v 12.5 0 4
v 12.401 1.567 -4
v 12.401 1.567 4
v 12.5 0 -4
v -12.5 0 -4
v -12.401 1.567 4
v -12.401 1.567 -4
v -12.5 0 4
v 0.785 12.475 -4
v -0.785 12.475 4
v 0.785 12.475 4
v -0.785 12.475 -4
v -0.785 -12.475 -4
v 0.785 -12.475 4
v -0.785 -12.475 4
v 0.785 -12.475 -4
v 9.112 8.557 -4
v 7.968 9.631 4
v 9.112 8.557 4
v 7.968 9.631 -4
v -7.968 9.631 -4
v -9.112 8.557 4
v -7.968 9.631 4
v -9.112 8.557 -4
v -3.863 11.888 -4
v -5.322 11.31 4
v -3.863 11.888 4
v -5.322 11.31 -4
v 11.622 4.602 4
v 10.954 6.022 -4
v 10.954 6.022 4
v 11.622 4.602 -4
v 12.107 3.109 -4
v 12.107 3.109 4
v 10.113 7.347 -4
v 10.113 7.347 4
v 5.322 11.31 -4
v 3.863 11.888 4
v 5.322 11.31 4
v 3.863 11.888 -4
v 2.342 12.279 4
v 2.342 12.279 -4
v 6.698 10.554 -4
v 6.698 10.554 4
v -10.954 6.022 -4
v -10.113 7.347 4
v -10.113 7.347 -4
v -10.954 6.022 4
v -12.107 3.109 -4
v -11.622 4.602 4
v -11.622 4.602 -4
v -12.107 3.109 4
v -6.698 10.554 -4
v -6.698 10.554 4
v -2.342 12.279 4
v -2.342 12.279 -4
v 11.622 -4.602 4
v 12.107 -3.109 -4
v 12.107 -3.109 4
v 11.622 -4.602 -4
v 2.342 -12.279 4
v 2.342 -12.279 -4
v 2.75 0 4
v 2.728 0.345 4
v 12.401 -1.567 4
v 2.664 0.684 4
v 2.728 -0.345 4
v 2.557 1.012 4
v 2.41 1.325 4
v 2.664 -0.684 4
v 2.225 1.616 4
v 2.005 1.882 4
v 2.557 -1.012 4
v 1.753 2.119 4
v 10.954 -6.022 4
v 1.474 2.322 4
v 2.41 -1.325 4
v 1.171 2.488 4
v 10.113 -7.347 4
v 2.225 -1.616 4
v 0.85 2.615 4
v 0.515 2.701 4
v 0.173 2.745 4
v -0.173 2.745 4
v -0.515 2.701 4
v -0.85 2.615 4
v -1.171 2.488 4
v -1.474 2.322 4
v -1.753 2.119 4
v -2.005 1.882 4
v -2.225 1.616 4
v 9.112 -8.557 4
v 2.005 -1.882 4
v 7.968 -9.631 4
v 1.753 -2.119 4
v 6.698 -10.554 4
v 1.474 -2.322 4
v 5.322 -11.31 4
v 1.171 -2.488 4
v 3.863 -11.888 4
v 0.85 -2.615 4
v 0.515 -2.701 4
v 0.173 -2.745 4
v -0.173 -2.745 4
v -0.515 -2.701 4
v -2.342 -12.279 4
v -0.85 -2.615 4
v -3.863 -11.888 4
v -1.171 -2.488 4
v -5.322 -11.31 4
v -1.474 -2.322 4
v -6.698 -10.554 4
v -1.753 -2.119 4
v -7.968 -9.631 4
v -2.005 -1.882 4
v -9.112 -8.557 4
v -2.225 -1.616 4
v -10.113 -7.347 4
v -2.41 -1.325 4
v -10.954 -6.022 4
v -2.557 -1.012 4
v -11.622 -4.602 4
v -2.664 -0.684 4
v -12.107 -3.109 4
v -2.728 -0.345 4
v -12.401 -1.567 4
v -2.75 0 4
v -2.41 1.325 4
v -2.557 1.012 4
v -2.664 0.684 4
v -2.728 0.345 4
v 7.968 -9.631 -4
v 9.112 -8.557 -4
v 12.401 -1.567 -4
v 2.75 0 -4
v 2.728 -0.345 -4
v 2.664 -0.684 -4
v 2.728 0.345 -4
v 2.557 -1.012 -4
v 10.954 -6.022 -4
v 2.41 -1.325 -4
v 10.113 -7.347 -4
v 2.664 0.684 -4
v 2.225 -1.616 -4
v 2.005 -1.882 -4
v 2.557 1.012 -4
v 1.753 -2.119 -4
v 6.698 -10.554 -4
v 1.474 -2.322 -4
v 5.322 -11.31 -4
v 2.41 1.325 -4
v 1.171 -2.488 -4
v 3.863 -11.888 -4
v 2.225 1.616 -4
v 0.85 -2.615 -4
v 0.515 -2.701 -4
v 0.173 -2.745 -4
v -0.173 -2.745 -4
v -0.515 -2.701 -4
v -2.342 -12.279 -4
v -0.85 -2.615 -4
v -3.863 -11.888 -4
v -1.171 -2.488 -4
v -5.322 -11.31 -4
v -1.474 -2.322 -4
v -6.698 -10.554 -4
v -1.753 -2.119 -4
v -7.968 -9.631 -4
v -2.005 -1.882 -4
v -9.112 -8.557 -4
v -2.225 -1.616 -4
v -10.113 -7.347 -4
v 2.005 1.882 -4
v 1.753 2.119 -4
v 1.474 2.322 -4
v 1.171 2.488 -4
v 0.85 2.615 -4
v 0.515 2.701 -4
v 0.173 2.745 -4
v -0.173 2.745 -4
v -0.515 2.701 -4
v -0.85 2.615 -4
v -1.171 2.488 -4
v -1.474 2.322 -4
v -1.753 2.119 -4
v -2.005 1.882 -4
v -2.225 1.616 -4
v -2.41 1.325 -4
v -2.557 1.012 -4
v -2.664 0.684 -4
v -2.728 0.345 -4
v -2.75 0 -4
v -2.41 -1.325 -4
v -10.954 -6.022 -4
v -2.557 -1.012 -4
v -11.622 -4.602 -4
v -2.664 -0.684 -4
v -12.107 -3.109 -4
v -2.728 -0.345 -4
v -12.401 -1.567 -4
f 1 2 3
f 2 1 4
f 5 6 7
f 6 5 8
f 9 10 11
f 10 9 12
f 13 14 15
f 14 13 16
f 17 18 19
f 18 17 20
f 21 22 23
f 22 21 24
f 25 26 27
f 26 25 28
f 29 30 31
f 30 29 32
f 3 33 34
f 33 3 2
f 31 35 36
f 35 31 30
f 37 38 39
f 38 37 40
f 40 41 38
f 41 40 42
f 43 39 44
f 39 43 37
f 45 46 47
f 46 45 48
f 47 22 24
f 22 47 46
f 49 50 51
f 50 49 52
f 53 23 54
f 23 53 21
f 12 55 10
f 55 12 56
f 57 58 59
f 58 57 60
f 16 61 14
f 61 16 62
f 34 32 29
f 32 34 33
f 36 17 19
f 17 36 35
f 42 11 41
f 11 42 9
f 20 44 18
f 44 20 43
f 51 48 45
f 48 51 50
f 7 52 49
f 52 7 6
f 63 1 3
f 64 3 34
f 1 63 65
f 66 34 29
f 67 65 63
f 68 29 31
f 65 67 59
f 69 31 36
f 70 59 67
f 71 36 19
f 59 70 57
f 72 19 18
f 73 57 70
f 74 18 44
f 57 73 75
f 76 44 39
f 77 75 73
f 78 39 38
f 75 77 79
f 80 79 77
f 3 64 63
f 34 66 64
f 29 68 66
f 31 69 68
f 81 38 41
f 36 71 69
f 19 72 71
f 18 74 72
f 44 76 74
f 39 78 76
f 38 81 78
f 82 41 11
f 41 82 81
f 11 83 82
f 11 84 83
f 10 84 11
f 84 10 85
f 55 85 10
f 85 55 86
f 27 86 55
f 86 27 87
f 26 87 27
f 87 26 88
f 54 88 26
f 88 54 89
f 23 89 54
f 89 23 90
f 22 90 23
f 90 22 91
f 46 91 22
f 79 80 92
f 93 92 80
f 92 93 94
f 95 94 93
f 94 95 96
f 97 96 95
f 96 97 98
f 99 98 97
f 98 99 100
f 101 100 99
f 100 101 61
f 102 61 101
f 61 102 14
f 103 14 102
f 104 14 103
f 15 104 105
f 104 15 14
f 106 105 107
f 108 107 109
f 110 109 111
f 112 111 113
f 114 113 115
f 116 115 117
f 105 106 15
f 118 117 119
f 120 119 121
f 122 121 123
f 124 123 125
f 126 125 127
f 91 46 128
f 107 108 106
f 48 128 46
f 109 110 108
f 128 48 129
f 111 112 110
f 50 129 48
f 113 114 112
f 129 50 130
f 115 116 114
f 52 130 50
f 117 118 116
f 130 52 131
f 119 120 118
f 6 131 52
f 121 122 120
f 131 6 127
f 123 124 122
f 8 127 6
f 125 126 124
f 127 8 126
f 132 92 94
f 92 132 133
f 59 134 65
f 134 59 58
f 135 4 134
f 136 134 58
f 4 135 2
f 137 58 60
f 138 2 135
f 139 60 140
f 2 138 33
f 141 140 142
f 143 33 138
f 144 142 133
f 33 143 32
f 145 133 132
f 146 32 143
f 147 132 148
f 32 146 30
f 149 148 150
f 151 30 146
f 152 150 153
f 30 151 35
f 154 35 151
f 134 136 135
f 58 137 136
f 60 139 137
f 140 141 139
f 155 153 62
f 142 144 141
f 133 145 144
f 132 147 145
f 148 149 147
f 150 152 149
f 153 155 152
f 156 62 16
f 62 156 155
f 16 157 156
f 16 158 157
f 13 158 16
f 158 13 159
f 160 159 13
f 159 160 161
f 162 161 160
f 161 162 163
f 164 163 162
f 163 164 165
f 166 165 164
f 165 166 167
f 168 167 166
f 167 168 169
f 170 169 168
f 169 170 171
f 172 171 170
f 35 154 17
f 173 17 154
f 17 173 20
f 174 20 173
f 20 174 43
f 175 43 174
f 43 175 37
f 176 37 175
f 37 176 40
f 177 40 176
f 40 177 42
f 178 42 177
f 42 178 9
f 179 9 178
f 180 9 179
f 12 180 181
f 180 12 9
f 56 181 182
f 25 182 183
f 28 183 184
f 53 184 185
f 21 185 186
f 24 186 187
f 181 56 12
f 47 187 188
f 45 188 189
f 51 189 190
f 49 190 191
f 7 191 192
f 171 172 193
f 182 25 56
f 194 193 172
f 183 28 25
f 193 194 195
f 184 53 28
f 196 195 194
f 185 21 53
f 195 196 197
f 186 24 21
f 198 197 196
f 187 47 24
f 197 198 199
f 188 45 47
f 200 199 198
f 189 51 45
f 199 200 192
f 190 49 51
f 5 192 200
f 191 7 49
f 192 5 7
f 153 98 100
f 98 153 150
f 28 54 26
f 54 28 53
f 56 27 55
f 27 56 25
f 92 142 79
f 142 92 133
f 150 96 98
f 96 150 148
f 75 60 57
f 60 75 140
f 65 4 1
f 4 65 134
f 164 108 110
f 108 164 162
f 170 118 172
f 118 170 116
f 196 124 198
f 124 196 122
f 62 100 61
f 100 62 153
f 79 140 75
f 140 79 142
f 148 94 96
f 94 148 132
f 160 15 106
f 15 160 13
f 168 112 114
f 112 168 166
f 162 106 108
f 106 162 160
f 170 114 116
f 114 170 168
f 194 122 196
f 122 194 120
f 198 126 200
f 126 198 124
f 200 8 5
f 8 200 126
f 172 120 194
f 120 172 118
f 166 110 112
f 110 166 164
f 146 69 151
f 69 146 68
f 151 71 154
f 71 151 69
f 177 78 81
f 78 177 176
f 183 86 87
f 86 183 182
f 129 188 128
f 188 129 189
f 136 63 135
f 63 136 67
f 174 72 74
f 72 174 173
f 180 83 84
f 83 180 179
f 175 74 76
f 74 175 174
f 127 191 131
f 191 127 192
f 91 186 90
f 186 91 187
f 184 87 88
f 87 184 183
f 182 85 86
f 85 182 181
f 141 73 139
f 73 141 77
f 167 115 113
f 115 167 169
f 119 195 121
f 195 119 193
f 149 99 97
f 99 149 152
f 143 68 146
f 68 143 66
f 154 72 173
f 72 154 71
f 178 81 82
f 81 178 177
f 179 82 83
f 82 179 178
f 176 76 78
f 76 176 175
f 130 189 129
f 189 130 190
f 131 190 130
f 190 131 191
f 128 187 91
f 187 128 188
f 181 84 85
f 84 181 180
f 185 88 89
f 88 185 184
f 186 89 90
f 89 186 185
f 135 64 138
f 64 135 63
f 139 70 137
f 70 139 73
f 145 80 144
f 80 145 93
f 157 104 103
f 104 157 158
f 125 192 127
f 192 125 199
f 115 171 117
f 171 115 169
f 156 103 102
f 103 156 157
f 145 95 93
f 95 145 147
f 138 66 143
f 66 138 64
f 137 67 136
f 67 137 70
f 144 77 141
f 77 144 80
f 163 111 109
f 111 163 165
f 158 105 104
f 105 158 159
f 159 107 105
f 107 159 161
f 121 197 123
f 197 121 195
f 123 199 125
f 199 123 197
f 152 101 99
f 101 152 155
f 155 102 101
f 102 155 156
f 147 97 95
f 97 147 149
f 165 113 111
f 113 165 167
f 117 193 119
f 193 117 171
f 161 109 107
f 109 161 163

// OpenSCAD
$fn = 50;


difference() {
	union() {
		translate(v = [0, 0, -4.0000000000]) {
			cylinder(h = 8, r = 12.5000000000);
		}
	}
	union() {
		translate(v = [0, 0, -100.0000000000]) {
			cylinder(h = 200, r = 2.7500000000);
		}
	}
}
